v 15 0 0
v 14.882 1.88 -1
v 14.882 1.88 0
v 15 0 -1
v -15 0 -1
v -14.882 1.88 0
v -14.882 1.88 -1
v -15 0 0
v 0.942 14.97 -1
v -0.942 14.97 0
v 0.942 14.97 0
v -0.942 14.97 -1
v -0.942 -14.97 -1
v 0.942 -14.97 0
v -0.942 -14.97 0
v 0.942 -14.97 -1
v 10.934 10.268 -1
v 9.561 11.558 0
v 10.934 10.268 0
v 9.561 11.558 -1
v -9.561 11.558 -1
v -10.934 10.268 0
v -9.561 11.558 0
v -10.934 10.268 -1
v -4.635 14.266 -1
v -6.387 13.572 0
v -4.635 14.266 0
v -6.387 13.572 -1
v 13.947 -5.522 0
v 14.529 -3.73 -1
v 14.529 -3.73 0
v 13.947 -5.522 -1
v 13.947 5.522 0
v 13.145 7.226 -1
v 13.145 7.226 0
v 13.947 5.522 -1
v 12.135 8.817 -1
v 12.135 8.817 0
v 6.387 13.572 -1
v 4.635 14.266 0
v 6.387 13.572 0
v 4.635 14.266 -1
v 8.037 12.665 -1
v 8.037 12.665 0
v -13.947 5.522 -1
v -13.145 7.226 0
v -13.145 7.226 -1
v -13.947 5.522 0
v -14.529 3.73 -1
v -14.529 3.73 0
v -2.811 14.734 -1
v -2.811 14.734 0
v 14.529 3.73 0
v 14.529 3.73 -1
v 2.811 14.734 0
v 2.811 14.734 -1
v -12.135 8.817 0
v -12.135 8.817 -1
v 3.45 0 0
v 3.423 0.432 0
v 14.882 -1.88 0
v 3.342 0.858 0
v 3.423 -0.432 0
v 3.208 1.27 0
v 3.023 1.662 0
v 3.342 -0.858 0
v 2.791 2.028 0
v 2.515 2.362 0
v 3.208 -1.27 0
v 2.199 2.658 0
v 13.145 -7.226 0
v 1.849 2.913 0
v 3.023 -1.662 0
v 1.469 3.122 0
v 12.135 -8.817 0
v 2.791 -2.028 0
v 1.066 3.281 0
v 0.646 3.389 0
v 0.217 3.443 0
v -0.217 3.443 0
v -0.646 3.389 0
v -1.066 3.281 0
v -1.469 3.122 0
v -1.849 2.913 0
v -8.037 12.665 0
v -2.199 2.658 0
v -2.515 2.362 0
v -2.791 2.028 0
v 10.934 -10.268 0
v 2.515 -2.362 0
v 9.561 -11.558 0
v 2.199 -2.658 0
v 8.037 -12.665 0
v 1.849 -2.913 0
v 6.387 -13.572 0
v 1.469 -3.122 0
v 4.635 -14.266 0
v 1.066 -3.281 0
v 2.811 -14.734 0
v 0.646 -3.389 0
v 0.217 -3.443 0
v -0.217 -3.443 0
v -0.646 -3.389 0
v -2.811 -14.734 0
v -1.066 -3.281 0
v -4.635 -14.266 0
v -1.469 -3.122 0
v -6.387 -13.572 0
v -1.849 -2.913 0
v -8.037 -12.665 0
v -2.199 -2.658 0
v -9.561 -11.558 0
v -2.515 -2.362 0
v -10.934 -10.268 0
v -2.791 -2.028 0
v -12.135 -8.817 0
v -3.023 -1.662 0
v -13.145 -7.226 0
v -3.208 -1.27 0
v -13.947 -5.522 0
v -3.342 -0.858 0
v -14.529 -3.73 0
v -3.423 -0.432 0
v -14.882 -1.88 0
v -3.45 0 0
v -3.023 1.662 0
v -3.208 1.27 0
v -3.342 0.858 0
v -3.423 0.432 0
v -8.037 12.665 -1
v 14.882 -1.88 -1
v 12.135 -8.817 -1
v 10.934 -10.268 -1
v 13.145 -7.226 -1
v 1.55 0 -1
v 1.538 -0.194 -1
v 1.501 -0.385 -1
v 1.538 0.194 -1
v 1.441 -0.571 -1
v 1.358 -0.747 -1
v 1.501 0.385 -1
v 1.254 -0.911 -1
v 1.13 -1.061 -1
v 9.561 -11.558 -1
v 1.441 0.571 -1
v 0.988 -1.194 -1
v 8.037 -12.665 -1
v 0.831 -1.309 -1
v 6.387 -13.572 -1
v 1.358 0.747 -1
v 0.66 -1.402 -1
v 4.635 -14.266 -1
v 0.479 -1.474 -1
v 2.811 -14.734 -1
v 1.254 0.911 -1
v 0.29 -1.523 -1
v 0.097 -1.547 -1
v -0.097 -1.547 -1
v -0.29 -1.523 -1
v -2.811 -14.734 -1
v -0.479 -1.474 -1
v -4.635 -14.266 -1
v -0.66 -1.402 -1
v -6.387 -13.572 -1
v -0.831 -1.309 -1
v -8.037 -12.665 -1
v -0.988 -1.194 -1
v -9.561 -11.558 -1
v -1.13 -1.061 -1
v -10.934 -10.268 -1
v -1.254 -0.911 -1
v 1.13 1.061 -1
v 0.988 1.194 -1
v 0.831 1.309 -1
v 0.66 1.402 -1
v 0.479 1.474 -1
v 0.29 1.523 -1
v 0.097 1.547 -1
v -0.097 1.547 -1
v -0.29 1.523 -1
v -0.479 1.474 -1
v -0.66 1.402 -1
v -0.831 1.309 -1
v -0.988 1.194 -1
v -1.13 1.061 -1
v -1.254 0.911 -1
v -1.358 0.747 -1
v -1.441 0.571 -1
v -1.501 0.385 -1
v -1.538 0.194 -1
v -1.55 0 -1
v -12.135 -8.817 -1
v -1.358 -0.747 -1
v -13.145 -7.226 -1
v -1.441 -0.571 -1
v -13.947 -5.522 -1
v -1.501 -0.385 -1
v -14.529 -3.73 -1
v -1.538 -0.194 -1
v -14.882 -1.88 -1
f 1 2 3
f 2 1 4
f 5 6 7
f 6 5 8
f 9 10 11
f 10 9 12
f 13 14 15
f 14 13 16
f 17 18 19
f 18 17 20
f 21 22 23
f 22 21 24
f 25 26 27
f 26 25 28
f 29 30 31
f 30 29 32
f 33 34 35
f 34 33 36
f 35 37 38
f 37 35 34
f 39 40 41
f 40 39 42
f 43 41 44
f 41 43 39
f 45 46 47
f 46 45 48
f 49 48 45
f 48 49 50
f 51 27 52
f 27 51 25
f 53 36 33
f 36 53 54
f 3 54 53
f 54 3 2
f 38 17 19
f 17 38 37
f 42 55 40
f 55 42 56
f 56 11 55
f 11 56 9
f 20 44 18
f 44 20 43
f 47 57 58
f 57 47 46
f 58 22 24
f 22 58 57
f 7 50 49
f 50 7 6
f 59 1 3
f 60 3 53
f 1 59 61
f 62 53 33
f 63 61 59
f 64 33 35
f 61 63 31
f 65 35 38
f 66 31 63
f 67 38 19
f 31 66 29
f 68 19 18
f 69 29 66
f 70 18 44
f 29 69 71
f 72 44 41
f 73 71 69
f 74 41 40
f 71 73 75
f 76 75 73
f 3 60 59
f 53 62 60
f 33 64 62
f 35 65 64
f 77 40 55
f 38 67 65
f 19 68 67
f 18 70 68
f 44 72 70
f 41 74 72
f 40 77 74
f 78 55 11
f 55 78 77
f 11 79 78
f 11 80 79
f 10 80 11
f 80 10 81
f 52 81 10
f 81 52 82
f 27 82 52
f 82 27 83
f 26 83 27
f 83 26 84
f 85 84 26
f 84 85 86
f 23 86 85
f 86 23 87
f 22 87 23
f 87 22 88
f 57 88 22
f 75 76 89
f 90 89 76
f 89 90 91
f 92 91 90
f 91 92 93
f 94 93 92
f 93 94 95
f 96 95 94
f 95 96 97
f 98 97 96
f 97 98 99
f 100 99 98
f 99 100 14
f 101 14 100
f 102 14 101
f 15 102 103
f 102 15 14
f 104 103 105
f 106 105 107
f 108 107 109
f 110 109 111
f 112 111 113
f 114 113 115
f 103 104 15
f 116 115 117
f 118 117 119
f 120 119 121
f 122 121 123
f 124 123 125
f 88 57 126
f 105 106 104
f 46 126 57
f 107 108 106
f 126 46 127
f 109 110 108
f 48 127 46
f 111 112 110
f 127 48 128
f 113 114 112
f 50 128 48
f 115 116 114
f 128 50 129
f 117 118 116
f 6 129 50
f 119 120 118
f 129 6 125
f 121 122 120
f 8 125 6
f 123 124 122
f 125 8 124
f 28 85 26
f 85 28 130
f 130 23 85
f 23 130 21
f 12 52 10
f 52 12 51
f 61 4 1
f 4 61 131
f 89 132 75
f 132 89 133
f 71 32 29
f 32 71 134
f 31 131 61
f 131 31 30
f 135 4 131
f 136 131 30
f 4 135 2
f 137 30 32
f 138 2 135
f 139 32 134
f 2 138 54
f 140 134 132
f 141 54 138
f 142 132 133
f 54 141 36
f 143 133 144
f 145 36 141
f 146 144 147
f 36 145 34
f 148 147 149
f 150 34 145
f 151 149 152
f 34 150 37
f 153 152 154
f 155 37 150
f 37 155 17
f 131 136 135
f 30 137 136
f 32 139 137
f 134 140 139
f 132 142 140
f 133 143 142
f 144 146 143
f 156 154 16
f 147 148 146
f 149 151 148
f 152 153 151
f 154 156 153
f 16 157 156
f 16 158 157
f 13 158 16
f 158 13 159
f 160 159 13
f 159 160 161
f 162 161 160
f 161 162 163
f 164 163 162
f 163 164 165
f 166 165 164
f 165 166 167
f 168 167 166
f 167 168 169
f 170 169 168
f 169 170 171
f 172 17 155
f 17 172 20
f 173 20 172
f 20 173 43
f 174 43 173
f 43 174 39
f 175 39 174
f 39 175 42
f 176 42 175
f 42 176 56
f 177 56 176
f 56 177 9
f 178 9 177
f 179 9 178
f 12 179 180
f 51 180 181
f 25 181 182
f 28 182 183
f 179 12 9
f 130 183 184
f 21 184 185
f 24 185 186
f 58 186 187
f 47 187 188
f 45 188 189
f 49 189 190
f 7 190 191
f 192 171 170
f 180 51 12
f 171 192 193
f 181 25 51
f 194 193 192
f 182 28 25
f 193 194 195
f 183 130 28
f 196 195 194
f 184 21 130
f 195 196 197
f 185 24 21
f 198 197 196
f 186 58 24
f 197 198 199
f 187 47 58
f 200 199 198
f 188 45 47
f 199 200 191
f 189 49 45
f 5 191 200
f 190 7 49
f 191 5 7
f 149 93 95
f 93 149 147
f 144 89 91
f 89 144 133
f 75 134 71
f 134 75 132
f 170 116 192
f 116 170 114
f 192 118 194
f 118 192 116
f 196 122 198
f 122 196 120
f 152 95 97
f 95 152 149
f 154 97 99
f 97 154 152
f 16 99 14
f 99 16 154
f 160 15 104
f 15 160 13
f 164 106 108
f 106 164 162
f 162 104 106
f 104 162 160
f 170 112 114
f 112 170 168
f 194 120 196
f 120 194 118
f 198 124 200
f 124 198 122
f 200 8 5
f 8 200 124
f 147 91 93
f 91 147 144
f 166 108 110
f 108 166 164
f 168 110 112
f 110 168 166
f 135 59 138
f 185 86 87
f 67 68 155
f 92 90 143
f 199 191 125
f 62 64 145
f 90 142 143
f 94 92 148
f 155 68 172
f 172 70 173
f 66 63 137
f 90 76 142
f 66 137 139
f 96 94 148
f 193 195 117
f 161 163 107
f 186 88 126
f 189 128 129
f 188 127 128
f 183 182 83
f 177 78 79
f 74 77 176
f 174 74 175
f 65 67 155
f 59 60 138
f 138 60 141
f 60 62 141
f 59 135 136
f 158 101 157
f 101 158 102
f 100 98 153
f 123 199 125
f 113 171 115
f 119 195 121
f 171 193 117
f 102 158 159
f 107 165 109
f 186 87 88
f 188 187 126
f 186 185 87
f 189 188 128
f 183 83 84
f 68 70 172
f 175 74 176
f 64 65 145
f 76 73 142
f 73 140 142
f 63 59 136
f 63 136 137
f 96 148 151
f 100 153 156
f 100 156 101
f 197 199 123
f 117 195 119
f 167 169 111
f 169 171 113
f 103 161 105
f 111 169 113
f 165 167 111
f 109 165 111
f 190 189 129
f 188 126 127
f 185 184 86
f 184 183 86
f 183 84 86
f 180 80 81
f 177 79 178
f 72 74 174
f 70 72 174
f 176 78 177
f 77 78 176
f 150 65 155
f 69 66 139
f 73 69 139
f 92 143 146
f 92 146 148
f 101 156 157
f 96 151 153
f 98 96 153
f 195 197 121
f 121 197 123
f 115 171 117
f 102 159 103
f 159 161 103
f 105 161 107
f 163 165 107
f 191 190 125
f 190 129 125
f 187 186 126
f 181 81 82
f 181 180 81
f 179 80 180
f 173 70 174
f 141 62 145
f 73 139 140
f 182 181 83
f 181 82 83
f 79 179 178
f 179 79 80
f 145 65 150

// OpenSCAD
$fn = 50;


difference() {
	union() {
		translate(v = [0, 0, -1.0000000000]) {
			cylinder(h = 1.0000000000, r = 15.0000000000);
		}
		translate(v = [0, 0, -1.0000000000]) {
			cylinder(h = 1.0000000000, r = 2.8750000000);
		}
	}
	union() {
		translate(v = [0, 0, 0]) {
			rotate(a = [0, 0, 0]) {
				difference() {
					union() {
						translate(v = [0, 0, -1.0000000000]) {
							cylinder(h = 1.0000000000, r = 1.2500000000);
						}
						translate(v = [0, 0, -1.0000000000]) {
							cylinder(h = 1.0000000000, r1 = 1.5500000000, r2 = 3.4500000000);
						}
						translate(v = [0, 0, -1.0000000000]) {
							cylinder(h = 1.0000000000, r = 1.5500000000);
						}
						translate(v = [0, 0, -1.0000000000]) {
							cylinder(h = 1.0000000000, r = 1.2500000000);
						}
					}
					union();
				}
			}
		}
	}
}
